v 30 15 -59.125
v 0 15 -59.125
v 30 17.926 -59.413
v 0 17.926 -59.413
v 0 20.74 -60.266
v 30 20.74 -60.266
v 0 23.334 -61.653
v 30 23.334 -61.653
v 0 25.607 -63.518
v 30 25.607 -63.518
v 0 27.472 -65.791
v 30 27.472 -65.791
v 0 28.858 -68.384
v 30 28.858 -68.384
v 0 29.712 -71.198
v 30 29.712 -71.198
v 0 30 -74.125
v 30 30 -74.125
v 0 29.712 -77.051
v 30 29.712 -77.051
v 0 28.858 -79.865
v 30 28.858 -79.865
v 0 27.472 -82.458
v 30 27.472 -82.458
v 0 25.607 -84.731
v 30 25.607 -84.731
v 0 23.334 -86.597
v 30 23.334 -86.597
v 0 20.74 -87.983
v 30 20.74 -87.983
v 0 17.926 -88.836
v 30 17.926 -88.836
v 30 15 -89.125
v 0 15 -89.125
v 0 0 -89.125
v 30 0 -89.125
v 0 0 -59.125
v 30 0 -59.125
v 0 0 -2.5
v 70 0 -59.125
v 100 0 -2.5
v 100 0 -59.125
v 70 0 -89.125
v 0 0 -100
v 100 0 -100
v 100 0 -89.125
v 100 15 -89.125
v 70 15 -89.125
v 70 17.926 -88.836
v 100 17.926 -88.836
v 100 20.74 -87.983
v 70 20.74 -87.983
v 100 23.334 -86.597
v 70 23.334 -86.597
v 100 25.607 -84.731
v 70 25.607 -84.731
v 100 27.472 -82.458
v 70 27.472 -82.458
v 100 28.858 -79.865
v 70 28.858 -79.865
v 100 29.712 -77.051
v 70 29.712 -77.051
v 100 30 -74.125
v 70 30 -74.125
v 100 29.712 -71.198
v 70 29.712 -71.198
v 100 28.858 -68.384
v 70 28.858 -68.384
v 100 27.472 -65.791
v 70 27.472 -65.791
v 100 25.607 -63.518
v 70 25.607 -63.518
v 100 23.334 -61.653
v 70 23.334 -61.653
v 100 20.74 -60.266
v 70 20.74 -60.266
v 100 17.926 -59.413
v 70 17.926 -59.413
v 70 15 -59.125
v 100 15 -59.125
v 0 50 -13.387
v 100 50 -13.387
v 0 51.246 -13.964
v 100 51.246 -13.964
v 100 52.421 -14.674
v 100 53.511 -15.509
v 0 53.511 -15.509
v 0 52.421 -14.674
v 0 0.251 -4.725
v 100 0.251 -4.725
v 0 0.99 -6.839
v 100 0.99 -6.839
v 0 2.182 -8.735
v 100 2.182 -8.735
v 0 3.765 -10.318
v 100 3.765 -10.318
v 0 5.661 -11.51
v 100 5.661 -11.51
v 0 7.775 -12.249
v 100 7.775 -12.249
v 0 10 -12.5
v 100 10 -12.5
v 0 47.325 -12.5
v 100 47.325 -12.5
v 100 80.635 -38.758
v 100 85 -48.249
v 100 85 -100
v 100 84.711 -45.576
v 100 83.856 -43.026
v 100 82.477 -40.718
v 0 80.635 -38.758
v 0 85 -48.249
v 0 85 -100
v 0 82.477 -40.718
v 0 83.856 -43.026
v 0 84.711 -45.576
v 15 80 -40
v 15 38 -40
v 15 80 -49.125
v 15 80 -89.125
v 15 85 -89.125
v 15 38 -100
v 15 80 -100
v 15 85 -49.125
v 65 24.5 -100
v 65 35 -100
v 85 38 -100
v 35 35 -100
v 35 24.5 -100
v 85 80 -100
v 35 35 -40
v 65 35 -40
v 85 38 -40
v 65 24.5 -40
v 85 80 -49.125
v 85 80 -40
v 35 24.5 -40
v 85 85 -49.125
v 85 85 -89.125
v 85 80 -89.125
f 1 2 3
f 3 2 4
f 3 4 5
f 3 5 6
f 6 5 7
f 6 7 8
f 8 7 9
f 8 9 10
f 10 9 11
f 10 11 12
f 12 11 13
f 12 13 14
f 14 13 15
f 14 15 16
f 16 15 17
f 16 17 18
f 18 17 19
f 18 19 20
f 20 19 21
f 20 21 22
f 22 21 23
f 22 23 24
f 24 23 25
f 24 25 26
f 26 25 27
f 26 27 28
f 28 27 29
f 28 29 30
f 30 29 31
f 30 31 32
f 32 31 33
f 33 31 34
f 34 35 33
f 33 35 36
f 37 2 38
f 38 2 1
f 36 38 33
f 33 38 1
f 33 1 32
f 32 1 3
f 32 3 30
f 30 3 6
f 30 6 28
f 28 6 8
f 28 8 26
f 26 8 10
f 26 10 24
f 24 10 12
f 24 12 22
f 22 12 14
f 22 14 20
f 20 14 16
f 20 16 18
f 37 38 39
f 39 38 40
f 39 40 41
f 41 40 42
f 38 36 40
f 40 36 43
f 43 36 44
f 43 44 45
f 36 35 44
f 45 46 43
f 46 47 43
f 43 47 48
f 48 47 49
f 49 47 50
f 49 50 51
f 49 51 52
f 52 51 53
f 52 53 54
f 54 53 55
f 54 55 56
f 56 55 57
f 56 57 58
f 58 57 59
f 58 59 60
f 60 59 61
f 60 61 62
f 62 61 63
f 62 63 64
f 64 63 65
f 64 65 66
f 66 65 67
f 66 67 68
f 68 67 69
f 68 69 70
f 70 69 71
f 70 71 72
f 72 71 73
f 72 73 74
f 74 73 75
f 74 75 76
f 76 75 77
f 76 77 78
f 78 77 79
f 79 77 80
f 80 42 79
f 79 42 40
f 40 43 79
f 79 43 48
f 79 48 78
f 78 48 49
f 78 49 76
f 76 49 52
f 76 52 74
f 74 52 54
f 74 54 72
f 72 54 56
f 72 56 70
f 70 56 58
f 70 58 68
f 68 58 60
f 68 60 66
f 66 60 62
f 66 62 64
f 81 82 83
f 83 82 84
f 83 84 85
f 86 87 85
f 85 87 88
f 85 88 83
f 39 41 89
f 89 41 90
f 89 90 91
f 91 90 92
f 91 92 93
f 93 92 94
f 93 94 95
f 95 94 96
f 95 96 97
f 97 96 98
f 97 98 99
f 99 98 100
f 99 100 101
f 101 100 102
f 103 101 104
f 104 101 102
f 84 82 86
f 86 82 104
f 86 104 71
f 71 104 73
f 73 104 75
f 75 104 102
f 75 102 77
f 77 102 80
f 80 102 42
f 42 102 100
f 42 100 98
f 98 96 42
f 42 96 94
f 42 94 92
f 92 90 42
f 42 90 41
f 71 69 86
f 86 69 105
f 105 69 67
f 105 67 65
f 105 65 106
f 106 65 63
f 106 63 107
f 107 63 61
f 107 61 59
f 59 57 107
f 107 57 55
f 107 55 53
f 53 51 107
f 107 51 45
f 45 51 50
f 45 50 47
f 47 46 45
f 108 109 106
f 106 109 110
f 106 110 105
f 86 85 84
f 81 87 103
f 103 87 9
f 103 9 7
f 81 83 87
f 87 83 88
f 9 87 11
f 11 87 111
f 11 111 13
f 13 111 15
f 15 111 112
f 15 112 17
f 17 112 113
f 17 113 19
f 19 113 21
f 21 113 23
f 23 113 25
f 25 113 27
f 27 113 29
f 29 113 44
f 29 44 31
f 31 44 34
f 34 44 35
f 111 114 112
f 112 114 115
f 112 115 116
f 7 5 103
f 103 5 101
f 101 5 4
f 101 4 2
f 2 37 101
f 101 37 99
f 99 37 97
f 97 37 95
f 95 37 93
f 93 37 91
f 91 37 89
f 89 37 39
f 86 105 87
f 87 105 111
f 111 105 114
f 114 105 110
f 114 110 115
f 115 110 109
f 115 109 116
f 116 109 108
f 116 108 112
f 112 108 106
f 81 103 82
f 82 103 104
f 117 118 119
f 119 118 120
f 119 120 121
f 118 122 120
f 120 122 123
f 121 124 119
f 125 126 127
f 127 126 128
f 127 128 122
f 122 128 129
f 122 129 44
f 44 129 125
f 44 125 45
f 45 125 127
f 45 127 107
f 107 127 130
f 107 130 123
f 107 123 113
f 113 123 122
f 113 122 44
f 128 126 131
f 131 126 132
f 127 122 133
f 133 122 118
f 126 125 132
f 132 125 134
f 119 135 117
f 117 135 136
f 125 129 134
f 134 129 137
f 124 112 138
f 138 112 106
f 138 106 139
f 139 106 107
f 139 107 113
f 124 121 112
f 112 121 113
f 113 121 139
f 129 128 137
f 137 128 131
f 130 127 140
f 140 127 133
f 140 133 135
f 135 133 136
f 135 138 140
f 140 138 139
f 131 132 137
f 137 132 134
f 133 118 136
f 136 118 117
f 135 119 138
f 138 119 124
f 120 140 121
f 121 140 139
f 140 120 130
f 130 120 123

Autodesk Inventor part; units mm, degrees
ref_plane "YZ Plane" through (0, 0, 0) normal (1, 0, 0) x (0, 1, 0)
ref_plane "XZ Plane" through (0, 0, 0) normal (0, 1, 0) x (-1, 0, 0)
ref_plane "XY Plane" through (0, 0, 0) normal (0, 0, 1) x (1, 0, 0)
sketch "Esboço1" plane through (0, 0, 0) normal (0, 1, 0) x (-1, 0, 0)
  line L0 (0, 0) -> (-100, 0)
  line L1 (-100, 0) -> (-100, -100)
  line L2 (-100, -100) -> (0, -100)
  line L3 (0, -100) -> (0, 0)
  dimension "d0" = 100
  dimension "d1" = 100
extrude "Extrusão1" add sketch "Esboço1" along normal blind 85
sketch "Esboço2" plane through (100, 0, 0) normal (1, 0, 0) x (0, 0, -1)
  line L0 (0, 0) -> (100, 0) projected
  line L1 (0, 0) -> (2.5, 0)
  line L2 (12.5, 10) -> (12.5, 45.3759)
  line L3 (0, 85) -> (100, 85) projected
  line L4 (12.5, 50) -> (13.3867, 50)
  line L5 (42.5, 85) -> (12.5, 85)
  line L6 (12.5, 85) -> (12.5, 50)
  line L7 (15.5093, 53.5108) -> (38.7585, 80.6349)
  arc A0 (2.5, 0) -> (12.5, 10) centre (2.5, 10) ccw
  line L8 (2.5, 0) -> (100, 0)
  line L9 (48.2492, 85) -> (100, 85)
  line L10 (100, 85) -> (100, 0)
  arc A1 (15.5093, 53.5108) -> (12.5, 45.3759) centre (25, 45.3759) ccw
  line L11 (12.5, 85) -> (42.5, 85)
  line L12 (12.5, 85) -> (0, 85)
  arc A2 (48.2492, 85) -> (38.7585, 80.6349) centre (48.2492, 72.5) ccw
  circle A3 centre (74.1246, 15) radius 15
  line L13 (0, 85) -> (0, 0)
  line L14 (0, 0) -> (2.5, 0)
  line L15 (59.1246, 15) -> (59.1246, 0)
  line L16 (89.1246, 15) -> (89.1246, 0)
  line L17 (12.5, 50) -> (12.5, 45.3759)
  line L18 (12.5, 85) -> (48.2492, 85)
  point P0 (12.5, 0)
  dimension "d4" = 12.5
  dimension "d7" = 10
  dimension "d8" = 12.5
  dimension "d9" = 12.5
  dimension "d11" = 30
extrude "Extrusão2" cut sketch "Esboço2" against normal blind 100 contours L13 L3 L6 L17 L2 A0 L0 | L3 A2 L7 A1 L4 L6
extrude "Extrusão3" cut sketch "Esboço2" against normal blind 30 contours L15 A3 L0 | A3 L16 L0 | A3
sketch "Esboço3" plane through (0, 0, -100) normal (-1, 0, 0) x (0, 0, 1)
  line L0 (86.6133, 50) -> (87.5, 50)
  arc A0 (86.6133, 50) -> (84.4907, 53.5108) centre (75, 45.3759) ccw projected
  line L1 (86.6133, 50) -> (87.5, 47.3246)
  line L2 (87.5, 50) -> (87.5, 10) projected
  line L3 (86.6133, 50) -> (87.5, 50)
  line L4 (87.5, 50) -> (87.5, 47.3246)
  arc A1 (40.8754, 15) -> (10.8754, 15) centre (25.8754, 15) ccw projected
  circle A2 centre (25.8754, 15) radius 15
  line L5 (10.8754, 15) -> (10.8754, 0) projected
  line L6 (10.8754, 15) -> (10.8754, 0)
  line L7 (97.5, 0) -> (40.8754, 0) projected
  line L8 (40.8754, 15) -> (40.8754, 0)
  line L9 (10.8754, 0) -> (40.8754, 0)
  point P0 (100, 0)
extrude "Extrusão4" cut sketch "Esboço3" against normal blind 30 contours A2 A1 | L8 L9 A2 | A2 L9 L5
extrude "Extrusão5" cut sketch "Esboço3" against normal blind 100 contours L0 L2 L1
sketch "Esboço4" plane through (100, 0, -100) normal (0, 0, -1) x (-1, 0, 0)
  line L0 (15, 35) -> (85, 35)
  line L1 (15, 35) -> (15, 80)
  line L2 (0, 53.5108) -> (100, 53.5108) projected
  line L3 (15, 35) -> (60, 35) construction
  line L4 (15, 80) -> (85, 80)
  line L5 (85, 80) -> (85, 35)
  line L6 (70, 30) -> (70, 15) projected
  line L7 (15, 35) -> (15, 38)
  line L8 (15, 38) -> (85, 38)
  line L9 (0, 0) -> (0, 85) projected
  line L10 (0, 35) -> (50, 35)
  line L11 (37.5, 35) -> (35, 35)
  line L12 (35, 35) -> (35, 22.5)
  line L13 (35, 22.5) -> (65, 22.5)
  line L14 (65, 22.5) -> (65, 35)
  line L15 (35, 22.5) -> (35, 24.5)
  line L16 (35, 24.5) -> (65, 24.5)
  dimension "d26" = 70
  dimension "d27" = 45
  dimension "d31" = 3
  dimension "d34" = 30
  dimension "d35" = 2
extrude "Extrusão6" cut sketch "Esboço4" against normal blind 60 contours L0 L14 L16 L12 | L1 L2 L5 L8 | L1 L4 L5 L2
sketch "Esboço5" plane through (0, 85, 0) normal (0, 1, 0) x (1, 0, 0)
  line L0 (100, 89.1246) -> (70, 89.1246) projected
  line L1 (85, 89.1246) -> (85, 49.1246)
  line L2 (85, 100) -> (85, 40) projected
  line L3 (85, 49.1246) -> (15, 49.1246)
  line L4 (15, 100) -> (15, 40) projected
  line L5 (15, 49.1246) -> (15, 89.1246)
  line L6 (15, 89.1246) -> (85, 89.1246)
  point P0 (0, 0)
  dimension "d38" = 40
extrude "Extrusão7" cut sketch "Esboço5" against normal blind 30
properties part number "Mini-sumô rascunho"
